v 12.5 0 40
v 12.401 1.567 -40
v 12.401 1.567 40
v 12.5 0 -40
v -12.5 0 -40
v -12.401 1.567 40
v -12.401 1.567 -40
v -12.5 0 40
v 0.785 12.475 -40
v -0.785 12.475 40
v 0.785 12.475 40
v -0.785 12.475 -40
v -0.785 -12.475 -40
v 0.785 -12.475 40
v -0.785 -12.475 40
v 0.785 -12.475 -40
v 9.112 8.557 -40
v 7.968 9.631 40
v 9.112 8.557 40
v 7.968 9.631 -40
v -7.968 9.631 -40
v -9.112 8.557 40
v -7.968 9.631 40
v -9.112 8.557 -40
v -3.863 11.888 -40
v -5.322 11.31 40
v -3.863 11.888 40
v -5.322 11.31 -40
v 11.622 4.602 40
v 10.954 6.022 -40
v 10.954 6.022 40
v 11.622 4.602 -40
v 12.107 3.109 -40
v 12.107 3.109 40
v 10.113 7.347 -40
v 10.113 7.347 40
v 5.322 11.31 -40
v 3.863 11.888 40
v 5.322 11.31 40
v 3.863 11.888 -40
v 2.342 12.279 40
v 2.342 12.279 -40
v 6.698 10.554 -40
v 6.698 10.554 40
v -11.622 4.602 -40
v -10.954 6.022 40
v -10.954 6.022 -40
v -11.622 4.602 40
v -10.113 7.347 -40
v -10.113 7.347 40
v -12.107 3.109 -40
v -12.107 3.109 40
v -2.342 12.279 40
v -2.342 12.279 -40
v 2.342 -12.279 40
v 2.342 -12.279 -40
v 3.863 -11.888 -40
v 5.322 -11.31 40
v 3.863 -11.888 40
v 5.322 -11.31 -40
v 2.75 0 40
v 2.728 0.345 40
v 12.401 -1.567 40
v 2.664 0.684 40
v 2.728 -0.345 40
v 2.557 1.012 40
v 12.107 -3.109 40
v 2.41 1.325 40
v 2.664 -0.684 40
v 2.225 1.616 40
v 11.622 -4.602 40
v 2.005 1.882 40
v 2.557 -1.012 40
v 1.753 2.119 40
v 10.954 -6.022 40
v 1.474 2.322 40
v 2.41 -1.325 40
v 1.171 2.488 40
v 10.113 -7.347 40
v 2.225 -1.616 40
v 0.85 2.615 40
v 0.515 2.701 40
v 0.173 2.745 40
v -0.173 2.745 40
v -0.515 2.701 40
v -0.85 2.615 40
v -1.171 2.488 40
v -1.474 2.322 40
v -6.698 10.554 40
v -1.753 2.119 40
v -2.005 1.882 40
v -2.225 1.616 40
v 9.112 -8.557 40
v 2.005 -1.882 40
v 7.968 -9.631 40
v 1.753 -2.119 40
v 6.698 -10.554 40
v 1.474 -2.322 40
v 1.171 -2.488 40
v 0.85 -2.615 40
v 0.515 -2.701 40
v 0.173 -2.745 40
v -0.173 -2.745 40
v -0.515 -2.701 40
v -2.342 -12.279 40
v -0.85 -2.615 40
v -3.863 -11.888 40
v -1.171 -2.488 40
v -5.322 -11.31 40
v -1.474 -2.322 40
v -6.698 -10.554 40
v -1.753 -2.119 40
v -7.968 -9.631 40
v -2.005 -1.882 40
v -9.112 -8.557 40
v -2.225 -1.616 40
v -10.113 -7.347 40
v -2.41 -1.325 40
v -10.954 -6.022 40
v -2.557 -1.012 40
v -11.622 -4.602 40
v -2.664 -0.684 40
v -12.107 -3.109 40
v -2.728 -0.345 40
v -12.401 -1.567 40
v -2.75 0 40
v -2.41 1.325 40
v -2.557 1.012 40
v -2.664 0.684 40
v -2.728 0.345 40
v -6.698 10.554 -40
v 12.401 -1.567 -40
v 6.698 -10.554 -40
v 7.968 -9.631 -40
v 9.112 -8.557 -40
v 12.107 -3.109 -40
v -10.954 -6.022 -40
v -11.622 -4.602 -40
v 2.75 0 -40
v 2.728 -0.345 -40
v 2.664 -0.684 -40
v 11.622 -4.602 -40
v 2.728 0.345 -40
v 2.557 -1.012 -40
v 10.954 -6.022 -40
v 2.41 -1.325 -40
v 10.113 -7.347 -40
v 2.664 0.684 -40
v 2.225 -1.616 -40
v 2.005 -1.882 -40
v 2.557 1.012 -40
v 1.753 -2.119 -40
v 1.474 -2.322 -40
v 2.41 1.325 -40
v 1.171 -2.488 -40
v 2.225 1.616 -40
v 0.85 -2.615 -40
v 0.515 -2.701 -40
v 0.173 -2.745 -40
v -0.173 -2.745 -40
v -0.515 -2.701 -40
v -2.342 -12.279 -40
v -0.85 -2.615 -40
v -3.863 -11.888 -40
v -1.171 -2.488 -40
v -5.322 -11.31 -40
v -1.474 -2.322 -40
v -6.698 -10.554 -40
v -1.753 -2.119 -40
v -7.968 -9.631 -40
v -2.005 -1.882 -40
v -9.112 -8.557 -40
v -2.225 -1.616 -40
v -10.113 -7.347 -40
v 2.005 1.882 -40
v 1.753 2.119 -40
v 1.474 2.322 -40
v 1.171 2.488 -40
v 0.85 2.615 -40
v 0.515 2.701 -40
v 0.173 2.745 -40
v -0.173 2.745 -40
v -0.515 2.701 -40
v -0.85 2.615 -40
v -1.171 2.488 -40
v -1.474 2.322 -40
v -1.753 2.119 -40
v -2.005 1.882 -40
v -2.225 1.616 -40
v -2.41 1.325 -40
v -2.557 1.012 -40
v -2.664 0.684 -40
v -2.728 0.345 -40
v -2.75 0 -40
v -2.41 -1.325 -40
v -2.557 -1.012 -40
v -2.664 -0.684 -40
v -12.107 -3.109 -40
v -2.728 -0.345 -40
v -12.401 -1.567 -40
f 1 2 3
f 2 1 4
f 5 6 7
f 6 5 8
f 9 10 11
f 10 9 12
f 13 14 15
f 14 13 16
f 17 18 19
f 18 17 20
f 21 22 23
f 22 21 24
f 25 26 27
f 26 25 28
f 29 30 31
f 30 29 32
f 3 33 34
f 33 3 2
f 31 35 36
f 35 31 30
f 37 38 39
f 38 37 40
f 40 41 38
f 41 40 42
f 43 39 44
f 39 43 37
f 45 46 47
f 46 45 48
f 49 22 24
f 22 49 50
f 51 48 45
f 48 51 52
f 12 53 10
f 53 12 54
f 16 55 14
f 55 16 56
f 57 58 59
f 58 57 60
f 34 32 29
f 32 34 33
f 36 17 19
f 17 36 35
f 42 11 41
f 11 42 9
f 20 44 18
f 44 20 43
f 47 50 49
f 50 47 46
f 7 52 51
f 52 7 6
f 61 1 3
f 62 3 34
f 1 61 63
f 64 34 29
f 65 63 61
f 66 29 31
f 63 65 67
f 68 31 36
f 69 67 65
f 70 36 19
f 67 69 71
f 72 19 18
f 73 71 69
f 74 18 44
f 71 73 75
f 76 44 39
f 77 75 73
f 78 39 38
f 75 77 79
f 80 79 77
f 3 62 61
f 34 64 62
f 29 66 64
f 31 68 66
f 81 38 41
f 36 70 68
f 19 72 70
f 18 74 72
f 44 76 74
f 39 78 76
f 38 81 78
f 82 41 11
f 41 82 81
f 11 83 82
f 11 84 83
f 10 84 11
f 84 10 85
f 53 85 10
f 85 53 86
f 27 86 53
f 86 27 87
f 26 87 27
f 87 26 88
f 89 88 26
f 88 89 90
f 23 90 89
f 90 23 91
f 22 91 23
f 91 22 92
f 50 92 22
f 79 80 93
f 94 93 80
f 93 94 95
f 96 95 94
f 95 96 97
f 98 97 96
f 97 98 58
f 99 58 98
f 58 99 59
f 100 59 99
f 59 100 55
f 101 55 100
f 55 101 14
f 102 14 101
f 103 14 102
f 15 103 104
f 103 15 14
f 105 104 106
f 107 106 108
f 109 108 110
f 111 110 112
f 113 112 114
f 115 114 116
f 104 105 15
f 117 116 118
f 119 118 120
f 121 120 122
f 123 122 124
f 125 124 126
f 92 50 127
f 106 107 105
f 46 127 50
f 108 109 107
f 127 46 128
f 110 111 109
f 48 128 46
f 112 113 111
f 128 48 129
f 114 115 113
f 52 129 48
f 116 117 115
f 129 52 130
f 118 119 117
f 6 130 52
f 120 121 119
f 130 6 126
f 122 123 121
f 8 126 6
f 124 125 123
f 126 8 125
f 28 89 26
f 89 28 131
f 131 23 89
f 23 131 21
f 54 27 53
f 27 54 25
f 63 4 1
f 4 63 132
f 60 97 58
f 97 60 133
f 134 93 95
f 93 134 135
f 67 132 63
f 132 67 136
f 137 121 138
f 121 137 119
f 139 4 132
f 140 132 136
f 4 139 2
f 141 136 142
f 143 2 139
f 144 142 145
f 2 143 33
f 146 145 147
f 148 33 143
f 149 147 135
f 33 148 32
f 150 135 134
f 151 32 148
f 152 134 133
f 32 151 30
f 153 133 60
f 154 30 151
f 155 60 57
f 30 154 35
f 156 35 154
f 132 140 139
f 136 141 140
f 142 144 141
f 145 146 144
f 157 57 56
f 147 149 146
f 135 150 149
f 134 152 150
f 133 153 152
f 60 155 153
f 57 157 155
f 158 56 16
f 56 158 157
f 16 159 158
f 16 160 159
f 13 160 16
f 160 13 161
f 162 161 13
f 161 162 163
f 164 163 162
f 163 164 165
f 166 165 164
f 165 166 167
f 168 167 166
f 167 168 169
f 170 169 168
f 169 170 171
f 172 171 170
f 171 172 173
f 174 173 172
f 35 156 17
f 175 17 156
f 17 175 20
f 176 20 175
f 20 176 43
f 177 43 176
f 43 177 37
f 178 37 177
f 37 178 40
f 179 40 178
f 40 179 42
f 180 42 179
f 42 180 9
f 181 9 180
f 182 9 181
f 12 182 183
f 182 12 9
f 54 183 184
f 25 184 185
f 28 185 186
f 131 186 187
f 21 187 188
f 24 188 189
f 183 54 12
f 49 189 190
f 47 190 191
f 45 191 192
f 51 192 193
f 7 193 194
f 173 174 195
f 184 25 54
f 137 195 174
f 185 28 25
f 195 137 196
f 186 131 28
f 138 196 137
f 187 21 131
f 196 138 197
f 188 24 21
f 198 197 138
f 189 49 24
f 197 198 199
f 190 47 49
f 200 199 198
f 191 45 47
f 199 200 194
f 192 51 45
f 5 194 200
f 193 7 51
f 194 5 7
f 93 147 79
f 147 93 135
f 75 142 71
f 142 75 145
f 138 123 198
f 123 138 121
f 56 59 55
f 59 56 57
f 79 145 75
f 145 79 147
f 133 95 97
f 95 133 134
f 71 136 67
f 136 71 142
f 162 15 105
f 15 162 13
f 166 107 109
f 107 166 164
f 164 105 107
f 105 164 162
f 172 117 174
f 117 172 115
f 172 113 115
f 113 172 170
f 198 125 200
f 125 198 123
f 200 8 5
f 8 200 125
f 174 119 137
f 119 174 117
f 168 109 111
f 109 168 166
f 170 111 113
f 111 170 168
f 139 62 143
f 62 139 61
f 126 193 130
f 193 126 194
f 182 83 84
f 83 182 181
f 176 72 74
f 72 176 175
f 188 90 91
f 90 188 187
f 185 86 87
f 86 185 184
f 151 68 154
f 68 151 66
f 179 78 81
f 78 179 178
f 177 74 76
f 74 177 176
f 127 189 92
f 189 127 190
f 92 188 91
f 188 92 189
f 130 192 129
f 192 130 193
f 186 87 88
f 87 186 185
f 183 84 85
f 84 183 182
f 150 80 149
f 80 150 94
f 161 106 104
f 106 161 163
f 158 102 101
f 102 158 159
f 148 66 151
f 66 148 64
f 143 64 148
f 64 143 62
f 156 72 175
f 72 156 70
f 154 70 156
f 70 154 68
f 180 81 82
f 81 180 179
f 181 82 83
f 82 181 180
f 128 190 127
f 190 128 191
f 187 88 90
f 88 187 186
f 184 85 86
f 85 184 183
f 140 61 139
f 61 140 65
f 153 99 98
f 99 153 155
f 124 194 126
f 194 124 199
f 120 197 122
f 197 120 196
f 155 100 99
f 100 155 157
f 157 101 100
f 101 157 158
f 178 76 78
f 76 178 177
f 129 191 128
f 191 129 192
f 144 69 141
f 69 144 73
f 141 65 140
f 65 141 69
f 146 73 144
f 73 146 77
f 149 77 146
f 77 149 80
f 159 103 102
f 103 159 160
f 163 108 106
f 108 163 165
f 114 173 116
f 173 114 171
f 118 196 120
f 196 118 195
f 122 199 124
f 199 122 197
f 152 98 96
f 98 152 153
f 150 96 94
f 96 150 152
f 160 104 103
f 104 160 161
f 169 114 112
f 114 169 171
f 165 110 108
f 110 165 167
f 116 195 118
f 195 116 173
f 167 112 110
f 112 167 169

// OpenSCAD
$fn = 50;


difference() {
	union() {
		translate(v = [0, 0, -40.0000000000]) {
			cylinder(h = 80, r = 12.5000000000);
		}
	}
	union() {
		translate(v = [0, 0, -100.0000000000]) {
			cylinder(h = 200, r = 2.7500000000);
		}
	}
}
